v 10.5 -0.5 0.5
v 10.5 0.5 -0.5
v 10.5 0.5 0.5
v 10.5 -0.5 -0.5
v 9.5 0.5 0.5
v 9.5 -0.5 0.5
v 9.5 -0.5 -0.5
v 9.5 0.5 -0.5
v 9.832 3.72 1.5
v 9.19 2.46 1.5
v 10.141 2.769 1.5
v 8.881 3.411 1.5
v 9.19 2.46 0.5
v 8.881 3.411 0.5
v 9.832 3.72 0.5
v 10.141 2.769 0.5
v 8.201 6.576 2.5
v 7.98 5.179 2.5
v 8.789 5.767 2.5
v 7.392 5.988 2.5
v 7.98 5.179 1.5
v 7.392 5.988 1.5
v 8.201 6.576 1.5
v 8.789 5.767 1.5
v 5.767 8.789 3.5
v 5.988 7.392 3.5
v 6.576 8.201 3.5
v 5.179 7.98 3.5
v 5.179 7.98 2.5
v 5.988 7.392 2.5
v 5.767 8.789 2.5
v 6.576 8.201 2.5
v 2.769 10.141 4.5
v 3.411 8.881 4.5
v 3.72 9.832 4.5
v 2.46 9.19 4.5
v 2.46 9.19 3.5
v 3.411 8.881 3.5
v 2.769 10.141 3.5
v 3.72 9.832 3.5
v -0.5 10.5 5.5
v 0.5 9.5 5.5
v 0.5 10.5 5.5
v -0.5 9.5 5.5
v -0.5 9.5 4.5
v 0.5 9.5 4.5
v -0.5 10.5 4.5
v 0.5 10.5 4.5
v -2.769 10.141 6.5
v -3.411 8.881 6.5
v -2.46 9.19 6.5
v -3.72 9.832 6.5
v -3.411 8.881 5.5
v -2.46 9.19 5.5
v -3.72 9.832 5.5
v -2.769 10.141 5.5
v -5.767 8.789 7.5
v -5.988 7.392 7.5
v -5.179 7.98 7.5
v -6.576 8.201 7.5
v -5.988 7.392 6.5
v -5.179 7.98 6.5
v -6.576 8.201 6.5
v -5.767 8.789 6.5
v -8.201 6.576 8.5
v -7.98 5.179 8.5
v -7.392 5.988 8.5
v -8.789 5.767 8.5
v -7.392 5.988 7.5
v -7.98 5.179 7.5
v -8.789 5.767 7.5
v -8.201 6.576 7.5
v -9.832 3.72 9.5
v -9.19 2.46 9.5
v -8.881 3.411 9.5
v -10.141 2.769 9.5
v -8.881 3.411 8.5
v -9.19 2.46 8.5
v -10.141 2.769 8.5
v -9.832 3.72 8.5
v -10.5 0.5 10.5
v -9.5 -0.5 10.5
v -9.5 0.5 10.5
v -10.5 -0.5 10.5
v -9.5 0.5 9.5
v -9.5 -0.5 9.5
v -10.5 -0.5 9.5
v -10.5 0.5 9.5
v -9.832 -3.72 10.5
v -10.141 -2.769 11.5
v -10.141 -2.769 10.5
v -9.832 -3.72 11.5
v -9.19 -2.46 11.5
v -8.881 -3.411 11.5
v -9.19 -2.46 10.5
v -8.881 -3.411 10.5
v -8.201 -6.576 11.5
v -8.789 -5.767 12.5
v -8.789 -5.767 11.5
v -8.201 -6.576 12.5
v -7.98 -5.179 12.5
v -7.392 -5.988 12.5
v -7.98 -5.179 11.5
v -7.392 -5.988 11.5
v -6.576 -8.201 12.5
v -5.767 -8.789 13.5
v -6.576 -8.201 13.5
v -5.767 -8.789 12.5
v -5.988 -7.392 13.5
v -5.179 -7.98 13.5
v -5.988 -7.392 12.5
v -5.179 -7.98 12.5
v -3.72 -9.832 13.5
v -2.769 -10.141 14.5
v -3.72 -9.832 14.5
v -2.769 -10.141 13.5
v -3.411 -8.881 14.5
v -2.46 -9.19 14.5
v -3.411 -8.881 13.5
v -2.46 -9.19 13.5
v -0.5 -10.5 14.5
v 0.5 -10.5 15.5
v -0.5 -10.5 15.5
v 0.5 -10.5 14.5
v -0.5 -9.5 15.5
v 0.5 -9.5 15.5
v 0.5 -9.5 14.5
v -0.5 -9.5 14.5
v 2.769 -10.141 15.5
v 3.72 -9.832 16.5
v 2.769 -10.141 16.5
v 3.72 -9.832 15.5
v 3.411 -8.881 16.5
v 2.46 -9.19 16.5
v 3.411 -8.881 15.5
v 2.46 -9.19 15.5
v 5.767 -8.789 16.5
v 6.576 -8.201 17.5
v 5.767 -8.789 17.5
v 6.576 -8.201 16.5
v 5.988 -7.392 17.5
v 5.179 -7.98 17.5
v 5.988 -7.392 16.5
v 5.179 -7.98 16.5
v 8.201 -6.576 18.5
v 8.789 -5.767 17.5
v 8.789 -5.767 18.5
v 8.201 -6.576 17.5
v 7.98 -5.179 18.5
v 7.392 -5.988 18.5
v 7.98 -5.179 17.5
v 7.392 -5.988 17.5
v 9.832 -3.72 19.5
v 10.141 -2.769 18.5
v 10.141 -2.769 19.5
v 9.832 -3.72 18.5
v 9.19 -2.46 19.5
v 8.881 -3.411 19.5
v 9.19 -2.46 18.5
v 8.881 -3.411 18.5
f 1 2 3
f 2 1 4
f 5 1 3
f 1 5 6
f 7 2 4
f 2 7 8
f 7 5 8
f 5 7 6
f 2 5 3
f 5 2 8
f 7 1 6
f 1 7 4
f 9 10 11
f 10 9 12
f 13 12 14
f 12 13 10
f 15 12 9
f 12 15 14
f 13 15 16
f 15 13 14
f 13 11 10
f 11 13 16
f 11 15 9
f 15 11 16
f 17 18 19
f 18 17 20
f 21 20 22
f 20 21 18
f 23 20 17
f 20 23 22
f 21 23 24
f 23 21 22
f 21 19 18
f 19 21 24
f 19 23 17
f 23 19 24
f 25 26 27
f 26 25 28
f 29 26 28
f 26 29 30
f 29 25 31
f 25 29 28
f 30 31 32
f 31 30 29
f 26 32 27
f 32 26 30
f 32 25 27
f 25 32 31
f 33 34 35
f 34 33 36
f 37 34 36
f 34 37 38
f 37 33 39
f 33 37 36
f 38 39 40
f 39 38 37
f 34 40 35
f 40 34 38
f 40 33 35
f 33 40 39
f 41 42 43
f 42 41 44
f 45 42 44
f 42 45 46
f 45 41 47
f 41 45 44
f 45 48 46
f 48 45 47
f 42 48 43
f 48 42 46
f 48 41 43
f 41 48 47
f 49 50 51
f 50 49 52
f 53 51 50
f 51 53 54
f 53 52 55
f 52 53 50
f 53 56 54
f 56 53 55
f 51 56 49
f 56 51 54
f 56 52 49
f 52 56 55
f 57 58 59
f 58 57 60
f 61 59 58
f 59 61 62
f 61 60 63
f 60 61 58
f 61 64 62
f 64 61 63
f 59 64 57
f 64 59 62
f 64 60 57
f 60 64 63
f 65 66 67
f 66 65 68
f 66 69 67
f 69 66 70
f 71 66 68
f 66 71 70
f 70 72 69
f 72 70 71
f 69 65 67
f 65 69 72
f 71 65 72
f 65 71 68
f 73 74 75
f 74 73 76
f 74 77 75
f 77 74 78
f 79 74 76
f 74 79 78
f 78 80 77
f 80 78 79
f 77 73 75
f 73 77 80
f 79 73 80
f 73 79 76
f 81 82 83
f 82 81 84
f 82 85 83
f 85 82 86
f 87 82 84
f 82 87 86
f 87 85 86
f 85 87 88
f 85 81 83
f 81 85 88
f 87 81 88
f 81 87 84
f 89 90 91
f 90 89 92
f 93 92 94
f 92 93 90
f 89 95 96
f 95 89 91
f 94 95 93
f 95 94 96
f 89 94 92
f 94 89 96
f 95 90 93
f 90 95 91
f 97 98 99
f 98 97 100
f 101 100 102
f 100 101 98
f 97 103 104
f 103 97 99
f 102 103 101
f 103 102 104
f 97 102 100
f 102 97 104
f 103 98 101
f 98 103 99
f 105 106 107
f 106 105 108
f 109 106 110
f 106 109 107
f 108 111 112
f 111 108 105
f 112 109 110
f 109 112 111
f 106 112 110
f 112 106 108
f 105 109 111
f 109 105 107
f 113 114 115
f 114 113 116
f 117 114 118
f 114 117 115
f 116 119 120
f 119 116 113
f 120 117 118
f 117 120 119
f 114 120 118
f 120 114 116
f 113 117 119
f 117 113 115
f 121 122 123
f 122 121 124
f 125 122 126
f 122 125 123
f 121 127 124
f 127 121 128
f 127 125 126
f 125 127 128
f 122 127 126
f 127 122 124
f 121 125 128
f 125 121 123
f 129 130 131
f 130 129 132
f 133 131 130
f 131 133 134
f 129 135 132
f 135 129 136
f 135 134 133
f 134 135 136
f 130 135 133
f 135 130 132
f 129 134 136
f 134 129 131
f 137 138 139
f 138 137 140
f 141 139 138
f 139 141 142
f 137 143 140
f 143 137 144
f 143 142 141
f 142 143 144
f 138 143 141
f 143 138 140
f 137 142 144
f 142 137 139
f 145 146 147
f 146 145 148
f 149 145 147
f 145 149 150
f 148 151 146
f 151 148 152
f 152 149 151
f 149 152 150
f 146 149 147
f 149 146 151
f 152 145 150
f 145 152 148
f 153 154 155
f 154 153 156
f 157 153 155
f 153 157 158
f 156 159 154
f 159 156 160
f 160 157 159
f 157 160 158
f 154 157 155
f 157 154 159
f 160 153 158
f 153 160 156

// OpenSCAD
$fn = 50;
radius = 10;
height = 20;
turns = 20;
segments = 64;

module helix(radius, height, turns, segments) {
  for (i = [0:turns-1]) {
    rotate([0,0,i * 360 / turns]) {
      translate([radius, 0, height * i / turns]) {
        cube([1, 1, 1], center = true);
      }
    }
  }
}

helix(radius, height, turns, segments);
